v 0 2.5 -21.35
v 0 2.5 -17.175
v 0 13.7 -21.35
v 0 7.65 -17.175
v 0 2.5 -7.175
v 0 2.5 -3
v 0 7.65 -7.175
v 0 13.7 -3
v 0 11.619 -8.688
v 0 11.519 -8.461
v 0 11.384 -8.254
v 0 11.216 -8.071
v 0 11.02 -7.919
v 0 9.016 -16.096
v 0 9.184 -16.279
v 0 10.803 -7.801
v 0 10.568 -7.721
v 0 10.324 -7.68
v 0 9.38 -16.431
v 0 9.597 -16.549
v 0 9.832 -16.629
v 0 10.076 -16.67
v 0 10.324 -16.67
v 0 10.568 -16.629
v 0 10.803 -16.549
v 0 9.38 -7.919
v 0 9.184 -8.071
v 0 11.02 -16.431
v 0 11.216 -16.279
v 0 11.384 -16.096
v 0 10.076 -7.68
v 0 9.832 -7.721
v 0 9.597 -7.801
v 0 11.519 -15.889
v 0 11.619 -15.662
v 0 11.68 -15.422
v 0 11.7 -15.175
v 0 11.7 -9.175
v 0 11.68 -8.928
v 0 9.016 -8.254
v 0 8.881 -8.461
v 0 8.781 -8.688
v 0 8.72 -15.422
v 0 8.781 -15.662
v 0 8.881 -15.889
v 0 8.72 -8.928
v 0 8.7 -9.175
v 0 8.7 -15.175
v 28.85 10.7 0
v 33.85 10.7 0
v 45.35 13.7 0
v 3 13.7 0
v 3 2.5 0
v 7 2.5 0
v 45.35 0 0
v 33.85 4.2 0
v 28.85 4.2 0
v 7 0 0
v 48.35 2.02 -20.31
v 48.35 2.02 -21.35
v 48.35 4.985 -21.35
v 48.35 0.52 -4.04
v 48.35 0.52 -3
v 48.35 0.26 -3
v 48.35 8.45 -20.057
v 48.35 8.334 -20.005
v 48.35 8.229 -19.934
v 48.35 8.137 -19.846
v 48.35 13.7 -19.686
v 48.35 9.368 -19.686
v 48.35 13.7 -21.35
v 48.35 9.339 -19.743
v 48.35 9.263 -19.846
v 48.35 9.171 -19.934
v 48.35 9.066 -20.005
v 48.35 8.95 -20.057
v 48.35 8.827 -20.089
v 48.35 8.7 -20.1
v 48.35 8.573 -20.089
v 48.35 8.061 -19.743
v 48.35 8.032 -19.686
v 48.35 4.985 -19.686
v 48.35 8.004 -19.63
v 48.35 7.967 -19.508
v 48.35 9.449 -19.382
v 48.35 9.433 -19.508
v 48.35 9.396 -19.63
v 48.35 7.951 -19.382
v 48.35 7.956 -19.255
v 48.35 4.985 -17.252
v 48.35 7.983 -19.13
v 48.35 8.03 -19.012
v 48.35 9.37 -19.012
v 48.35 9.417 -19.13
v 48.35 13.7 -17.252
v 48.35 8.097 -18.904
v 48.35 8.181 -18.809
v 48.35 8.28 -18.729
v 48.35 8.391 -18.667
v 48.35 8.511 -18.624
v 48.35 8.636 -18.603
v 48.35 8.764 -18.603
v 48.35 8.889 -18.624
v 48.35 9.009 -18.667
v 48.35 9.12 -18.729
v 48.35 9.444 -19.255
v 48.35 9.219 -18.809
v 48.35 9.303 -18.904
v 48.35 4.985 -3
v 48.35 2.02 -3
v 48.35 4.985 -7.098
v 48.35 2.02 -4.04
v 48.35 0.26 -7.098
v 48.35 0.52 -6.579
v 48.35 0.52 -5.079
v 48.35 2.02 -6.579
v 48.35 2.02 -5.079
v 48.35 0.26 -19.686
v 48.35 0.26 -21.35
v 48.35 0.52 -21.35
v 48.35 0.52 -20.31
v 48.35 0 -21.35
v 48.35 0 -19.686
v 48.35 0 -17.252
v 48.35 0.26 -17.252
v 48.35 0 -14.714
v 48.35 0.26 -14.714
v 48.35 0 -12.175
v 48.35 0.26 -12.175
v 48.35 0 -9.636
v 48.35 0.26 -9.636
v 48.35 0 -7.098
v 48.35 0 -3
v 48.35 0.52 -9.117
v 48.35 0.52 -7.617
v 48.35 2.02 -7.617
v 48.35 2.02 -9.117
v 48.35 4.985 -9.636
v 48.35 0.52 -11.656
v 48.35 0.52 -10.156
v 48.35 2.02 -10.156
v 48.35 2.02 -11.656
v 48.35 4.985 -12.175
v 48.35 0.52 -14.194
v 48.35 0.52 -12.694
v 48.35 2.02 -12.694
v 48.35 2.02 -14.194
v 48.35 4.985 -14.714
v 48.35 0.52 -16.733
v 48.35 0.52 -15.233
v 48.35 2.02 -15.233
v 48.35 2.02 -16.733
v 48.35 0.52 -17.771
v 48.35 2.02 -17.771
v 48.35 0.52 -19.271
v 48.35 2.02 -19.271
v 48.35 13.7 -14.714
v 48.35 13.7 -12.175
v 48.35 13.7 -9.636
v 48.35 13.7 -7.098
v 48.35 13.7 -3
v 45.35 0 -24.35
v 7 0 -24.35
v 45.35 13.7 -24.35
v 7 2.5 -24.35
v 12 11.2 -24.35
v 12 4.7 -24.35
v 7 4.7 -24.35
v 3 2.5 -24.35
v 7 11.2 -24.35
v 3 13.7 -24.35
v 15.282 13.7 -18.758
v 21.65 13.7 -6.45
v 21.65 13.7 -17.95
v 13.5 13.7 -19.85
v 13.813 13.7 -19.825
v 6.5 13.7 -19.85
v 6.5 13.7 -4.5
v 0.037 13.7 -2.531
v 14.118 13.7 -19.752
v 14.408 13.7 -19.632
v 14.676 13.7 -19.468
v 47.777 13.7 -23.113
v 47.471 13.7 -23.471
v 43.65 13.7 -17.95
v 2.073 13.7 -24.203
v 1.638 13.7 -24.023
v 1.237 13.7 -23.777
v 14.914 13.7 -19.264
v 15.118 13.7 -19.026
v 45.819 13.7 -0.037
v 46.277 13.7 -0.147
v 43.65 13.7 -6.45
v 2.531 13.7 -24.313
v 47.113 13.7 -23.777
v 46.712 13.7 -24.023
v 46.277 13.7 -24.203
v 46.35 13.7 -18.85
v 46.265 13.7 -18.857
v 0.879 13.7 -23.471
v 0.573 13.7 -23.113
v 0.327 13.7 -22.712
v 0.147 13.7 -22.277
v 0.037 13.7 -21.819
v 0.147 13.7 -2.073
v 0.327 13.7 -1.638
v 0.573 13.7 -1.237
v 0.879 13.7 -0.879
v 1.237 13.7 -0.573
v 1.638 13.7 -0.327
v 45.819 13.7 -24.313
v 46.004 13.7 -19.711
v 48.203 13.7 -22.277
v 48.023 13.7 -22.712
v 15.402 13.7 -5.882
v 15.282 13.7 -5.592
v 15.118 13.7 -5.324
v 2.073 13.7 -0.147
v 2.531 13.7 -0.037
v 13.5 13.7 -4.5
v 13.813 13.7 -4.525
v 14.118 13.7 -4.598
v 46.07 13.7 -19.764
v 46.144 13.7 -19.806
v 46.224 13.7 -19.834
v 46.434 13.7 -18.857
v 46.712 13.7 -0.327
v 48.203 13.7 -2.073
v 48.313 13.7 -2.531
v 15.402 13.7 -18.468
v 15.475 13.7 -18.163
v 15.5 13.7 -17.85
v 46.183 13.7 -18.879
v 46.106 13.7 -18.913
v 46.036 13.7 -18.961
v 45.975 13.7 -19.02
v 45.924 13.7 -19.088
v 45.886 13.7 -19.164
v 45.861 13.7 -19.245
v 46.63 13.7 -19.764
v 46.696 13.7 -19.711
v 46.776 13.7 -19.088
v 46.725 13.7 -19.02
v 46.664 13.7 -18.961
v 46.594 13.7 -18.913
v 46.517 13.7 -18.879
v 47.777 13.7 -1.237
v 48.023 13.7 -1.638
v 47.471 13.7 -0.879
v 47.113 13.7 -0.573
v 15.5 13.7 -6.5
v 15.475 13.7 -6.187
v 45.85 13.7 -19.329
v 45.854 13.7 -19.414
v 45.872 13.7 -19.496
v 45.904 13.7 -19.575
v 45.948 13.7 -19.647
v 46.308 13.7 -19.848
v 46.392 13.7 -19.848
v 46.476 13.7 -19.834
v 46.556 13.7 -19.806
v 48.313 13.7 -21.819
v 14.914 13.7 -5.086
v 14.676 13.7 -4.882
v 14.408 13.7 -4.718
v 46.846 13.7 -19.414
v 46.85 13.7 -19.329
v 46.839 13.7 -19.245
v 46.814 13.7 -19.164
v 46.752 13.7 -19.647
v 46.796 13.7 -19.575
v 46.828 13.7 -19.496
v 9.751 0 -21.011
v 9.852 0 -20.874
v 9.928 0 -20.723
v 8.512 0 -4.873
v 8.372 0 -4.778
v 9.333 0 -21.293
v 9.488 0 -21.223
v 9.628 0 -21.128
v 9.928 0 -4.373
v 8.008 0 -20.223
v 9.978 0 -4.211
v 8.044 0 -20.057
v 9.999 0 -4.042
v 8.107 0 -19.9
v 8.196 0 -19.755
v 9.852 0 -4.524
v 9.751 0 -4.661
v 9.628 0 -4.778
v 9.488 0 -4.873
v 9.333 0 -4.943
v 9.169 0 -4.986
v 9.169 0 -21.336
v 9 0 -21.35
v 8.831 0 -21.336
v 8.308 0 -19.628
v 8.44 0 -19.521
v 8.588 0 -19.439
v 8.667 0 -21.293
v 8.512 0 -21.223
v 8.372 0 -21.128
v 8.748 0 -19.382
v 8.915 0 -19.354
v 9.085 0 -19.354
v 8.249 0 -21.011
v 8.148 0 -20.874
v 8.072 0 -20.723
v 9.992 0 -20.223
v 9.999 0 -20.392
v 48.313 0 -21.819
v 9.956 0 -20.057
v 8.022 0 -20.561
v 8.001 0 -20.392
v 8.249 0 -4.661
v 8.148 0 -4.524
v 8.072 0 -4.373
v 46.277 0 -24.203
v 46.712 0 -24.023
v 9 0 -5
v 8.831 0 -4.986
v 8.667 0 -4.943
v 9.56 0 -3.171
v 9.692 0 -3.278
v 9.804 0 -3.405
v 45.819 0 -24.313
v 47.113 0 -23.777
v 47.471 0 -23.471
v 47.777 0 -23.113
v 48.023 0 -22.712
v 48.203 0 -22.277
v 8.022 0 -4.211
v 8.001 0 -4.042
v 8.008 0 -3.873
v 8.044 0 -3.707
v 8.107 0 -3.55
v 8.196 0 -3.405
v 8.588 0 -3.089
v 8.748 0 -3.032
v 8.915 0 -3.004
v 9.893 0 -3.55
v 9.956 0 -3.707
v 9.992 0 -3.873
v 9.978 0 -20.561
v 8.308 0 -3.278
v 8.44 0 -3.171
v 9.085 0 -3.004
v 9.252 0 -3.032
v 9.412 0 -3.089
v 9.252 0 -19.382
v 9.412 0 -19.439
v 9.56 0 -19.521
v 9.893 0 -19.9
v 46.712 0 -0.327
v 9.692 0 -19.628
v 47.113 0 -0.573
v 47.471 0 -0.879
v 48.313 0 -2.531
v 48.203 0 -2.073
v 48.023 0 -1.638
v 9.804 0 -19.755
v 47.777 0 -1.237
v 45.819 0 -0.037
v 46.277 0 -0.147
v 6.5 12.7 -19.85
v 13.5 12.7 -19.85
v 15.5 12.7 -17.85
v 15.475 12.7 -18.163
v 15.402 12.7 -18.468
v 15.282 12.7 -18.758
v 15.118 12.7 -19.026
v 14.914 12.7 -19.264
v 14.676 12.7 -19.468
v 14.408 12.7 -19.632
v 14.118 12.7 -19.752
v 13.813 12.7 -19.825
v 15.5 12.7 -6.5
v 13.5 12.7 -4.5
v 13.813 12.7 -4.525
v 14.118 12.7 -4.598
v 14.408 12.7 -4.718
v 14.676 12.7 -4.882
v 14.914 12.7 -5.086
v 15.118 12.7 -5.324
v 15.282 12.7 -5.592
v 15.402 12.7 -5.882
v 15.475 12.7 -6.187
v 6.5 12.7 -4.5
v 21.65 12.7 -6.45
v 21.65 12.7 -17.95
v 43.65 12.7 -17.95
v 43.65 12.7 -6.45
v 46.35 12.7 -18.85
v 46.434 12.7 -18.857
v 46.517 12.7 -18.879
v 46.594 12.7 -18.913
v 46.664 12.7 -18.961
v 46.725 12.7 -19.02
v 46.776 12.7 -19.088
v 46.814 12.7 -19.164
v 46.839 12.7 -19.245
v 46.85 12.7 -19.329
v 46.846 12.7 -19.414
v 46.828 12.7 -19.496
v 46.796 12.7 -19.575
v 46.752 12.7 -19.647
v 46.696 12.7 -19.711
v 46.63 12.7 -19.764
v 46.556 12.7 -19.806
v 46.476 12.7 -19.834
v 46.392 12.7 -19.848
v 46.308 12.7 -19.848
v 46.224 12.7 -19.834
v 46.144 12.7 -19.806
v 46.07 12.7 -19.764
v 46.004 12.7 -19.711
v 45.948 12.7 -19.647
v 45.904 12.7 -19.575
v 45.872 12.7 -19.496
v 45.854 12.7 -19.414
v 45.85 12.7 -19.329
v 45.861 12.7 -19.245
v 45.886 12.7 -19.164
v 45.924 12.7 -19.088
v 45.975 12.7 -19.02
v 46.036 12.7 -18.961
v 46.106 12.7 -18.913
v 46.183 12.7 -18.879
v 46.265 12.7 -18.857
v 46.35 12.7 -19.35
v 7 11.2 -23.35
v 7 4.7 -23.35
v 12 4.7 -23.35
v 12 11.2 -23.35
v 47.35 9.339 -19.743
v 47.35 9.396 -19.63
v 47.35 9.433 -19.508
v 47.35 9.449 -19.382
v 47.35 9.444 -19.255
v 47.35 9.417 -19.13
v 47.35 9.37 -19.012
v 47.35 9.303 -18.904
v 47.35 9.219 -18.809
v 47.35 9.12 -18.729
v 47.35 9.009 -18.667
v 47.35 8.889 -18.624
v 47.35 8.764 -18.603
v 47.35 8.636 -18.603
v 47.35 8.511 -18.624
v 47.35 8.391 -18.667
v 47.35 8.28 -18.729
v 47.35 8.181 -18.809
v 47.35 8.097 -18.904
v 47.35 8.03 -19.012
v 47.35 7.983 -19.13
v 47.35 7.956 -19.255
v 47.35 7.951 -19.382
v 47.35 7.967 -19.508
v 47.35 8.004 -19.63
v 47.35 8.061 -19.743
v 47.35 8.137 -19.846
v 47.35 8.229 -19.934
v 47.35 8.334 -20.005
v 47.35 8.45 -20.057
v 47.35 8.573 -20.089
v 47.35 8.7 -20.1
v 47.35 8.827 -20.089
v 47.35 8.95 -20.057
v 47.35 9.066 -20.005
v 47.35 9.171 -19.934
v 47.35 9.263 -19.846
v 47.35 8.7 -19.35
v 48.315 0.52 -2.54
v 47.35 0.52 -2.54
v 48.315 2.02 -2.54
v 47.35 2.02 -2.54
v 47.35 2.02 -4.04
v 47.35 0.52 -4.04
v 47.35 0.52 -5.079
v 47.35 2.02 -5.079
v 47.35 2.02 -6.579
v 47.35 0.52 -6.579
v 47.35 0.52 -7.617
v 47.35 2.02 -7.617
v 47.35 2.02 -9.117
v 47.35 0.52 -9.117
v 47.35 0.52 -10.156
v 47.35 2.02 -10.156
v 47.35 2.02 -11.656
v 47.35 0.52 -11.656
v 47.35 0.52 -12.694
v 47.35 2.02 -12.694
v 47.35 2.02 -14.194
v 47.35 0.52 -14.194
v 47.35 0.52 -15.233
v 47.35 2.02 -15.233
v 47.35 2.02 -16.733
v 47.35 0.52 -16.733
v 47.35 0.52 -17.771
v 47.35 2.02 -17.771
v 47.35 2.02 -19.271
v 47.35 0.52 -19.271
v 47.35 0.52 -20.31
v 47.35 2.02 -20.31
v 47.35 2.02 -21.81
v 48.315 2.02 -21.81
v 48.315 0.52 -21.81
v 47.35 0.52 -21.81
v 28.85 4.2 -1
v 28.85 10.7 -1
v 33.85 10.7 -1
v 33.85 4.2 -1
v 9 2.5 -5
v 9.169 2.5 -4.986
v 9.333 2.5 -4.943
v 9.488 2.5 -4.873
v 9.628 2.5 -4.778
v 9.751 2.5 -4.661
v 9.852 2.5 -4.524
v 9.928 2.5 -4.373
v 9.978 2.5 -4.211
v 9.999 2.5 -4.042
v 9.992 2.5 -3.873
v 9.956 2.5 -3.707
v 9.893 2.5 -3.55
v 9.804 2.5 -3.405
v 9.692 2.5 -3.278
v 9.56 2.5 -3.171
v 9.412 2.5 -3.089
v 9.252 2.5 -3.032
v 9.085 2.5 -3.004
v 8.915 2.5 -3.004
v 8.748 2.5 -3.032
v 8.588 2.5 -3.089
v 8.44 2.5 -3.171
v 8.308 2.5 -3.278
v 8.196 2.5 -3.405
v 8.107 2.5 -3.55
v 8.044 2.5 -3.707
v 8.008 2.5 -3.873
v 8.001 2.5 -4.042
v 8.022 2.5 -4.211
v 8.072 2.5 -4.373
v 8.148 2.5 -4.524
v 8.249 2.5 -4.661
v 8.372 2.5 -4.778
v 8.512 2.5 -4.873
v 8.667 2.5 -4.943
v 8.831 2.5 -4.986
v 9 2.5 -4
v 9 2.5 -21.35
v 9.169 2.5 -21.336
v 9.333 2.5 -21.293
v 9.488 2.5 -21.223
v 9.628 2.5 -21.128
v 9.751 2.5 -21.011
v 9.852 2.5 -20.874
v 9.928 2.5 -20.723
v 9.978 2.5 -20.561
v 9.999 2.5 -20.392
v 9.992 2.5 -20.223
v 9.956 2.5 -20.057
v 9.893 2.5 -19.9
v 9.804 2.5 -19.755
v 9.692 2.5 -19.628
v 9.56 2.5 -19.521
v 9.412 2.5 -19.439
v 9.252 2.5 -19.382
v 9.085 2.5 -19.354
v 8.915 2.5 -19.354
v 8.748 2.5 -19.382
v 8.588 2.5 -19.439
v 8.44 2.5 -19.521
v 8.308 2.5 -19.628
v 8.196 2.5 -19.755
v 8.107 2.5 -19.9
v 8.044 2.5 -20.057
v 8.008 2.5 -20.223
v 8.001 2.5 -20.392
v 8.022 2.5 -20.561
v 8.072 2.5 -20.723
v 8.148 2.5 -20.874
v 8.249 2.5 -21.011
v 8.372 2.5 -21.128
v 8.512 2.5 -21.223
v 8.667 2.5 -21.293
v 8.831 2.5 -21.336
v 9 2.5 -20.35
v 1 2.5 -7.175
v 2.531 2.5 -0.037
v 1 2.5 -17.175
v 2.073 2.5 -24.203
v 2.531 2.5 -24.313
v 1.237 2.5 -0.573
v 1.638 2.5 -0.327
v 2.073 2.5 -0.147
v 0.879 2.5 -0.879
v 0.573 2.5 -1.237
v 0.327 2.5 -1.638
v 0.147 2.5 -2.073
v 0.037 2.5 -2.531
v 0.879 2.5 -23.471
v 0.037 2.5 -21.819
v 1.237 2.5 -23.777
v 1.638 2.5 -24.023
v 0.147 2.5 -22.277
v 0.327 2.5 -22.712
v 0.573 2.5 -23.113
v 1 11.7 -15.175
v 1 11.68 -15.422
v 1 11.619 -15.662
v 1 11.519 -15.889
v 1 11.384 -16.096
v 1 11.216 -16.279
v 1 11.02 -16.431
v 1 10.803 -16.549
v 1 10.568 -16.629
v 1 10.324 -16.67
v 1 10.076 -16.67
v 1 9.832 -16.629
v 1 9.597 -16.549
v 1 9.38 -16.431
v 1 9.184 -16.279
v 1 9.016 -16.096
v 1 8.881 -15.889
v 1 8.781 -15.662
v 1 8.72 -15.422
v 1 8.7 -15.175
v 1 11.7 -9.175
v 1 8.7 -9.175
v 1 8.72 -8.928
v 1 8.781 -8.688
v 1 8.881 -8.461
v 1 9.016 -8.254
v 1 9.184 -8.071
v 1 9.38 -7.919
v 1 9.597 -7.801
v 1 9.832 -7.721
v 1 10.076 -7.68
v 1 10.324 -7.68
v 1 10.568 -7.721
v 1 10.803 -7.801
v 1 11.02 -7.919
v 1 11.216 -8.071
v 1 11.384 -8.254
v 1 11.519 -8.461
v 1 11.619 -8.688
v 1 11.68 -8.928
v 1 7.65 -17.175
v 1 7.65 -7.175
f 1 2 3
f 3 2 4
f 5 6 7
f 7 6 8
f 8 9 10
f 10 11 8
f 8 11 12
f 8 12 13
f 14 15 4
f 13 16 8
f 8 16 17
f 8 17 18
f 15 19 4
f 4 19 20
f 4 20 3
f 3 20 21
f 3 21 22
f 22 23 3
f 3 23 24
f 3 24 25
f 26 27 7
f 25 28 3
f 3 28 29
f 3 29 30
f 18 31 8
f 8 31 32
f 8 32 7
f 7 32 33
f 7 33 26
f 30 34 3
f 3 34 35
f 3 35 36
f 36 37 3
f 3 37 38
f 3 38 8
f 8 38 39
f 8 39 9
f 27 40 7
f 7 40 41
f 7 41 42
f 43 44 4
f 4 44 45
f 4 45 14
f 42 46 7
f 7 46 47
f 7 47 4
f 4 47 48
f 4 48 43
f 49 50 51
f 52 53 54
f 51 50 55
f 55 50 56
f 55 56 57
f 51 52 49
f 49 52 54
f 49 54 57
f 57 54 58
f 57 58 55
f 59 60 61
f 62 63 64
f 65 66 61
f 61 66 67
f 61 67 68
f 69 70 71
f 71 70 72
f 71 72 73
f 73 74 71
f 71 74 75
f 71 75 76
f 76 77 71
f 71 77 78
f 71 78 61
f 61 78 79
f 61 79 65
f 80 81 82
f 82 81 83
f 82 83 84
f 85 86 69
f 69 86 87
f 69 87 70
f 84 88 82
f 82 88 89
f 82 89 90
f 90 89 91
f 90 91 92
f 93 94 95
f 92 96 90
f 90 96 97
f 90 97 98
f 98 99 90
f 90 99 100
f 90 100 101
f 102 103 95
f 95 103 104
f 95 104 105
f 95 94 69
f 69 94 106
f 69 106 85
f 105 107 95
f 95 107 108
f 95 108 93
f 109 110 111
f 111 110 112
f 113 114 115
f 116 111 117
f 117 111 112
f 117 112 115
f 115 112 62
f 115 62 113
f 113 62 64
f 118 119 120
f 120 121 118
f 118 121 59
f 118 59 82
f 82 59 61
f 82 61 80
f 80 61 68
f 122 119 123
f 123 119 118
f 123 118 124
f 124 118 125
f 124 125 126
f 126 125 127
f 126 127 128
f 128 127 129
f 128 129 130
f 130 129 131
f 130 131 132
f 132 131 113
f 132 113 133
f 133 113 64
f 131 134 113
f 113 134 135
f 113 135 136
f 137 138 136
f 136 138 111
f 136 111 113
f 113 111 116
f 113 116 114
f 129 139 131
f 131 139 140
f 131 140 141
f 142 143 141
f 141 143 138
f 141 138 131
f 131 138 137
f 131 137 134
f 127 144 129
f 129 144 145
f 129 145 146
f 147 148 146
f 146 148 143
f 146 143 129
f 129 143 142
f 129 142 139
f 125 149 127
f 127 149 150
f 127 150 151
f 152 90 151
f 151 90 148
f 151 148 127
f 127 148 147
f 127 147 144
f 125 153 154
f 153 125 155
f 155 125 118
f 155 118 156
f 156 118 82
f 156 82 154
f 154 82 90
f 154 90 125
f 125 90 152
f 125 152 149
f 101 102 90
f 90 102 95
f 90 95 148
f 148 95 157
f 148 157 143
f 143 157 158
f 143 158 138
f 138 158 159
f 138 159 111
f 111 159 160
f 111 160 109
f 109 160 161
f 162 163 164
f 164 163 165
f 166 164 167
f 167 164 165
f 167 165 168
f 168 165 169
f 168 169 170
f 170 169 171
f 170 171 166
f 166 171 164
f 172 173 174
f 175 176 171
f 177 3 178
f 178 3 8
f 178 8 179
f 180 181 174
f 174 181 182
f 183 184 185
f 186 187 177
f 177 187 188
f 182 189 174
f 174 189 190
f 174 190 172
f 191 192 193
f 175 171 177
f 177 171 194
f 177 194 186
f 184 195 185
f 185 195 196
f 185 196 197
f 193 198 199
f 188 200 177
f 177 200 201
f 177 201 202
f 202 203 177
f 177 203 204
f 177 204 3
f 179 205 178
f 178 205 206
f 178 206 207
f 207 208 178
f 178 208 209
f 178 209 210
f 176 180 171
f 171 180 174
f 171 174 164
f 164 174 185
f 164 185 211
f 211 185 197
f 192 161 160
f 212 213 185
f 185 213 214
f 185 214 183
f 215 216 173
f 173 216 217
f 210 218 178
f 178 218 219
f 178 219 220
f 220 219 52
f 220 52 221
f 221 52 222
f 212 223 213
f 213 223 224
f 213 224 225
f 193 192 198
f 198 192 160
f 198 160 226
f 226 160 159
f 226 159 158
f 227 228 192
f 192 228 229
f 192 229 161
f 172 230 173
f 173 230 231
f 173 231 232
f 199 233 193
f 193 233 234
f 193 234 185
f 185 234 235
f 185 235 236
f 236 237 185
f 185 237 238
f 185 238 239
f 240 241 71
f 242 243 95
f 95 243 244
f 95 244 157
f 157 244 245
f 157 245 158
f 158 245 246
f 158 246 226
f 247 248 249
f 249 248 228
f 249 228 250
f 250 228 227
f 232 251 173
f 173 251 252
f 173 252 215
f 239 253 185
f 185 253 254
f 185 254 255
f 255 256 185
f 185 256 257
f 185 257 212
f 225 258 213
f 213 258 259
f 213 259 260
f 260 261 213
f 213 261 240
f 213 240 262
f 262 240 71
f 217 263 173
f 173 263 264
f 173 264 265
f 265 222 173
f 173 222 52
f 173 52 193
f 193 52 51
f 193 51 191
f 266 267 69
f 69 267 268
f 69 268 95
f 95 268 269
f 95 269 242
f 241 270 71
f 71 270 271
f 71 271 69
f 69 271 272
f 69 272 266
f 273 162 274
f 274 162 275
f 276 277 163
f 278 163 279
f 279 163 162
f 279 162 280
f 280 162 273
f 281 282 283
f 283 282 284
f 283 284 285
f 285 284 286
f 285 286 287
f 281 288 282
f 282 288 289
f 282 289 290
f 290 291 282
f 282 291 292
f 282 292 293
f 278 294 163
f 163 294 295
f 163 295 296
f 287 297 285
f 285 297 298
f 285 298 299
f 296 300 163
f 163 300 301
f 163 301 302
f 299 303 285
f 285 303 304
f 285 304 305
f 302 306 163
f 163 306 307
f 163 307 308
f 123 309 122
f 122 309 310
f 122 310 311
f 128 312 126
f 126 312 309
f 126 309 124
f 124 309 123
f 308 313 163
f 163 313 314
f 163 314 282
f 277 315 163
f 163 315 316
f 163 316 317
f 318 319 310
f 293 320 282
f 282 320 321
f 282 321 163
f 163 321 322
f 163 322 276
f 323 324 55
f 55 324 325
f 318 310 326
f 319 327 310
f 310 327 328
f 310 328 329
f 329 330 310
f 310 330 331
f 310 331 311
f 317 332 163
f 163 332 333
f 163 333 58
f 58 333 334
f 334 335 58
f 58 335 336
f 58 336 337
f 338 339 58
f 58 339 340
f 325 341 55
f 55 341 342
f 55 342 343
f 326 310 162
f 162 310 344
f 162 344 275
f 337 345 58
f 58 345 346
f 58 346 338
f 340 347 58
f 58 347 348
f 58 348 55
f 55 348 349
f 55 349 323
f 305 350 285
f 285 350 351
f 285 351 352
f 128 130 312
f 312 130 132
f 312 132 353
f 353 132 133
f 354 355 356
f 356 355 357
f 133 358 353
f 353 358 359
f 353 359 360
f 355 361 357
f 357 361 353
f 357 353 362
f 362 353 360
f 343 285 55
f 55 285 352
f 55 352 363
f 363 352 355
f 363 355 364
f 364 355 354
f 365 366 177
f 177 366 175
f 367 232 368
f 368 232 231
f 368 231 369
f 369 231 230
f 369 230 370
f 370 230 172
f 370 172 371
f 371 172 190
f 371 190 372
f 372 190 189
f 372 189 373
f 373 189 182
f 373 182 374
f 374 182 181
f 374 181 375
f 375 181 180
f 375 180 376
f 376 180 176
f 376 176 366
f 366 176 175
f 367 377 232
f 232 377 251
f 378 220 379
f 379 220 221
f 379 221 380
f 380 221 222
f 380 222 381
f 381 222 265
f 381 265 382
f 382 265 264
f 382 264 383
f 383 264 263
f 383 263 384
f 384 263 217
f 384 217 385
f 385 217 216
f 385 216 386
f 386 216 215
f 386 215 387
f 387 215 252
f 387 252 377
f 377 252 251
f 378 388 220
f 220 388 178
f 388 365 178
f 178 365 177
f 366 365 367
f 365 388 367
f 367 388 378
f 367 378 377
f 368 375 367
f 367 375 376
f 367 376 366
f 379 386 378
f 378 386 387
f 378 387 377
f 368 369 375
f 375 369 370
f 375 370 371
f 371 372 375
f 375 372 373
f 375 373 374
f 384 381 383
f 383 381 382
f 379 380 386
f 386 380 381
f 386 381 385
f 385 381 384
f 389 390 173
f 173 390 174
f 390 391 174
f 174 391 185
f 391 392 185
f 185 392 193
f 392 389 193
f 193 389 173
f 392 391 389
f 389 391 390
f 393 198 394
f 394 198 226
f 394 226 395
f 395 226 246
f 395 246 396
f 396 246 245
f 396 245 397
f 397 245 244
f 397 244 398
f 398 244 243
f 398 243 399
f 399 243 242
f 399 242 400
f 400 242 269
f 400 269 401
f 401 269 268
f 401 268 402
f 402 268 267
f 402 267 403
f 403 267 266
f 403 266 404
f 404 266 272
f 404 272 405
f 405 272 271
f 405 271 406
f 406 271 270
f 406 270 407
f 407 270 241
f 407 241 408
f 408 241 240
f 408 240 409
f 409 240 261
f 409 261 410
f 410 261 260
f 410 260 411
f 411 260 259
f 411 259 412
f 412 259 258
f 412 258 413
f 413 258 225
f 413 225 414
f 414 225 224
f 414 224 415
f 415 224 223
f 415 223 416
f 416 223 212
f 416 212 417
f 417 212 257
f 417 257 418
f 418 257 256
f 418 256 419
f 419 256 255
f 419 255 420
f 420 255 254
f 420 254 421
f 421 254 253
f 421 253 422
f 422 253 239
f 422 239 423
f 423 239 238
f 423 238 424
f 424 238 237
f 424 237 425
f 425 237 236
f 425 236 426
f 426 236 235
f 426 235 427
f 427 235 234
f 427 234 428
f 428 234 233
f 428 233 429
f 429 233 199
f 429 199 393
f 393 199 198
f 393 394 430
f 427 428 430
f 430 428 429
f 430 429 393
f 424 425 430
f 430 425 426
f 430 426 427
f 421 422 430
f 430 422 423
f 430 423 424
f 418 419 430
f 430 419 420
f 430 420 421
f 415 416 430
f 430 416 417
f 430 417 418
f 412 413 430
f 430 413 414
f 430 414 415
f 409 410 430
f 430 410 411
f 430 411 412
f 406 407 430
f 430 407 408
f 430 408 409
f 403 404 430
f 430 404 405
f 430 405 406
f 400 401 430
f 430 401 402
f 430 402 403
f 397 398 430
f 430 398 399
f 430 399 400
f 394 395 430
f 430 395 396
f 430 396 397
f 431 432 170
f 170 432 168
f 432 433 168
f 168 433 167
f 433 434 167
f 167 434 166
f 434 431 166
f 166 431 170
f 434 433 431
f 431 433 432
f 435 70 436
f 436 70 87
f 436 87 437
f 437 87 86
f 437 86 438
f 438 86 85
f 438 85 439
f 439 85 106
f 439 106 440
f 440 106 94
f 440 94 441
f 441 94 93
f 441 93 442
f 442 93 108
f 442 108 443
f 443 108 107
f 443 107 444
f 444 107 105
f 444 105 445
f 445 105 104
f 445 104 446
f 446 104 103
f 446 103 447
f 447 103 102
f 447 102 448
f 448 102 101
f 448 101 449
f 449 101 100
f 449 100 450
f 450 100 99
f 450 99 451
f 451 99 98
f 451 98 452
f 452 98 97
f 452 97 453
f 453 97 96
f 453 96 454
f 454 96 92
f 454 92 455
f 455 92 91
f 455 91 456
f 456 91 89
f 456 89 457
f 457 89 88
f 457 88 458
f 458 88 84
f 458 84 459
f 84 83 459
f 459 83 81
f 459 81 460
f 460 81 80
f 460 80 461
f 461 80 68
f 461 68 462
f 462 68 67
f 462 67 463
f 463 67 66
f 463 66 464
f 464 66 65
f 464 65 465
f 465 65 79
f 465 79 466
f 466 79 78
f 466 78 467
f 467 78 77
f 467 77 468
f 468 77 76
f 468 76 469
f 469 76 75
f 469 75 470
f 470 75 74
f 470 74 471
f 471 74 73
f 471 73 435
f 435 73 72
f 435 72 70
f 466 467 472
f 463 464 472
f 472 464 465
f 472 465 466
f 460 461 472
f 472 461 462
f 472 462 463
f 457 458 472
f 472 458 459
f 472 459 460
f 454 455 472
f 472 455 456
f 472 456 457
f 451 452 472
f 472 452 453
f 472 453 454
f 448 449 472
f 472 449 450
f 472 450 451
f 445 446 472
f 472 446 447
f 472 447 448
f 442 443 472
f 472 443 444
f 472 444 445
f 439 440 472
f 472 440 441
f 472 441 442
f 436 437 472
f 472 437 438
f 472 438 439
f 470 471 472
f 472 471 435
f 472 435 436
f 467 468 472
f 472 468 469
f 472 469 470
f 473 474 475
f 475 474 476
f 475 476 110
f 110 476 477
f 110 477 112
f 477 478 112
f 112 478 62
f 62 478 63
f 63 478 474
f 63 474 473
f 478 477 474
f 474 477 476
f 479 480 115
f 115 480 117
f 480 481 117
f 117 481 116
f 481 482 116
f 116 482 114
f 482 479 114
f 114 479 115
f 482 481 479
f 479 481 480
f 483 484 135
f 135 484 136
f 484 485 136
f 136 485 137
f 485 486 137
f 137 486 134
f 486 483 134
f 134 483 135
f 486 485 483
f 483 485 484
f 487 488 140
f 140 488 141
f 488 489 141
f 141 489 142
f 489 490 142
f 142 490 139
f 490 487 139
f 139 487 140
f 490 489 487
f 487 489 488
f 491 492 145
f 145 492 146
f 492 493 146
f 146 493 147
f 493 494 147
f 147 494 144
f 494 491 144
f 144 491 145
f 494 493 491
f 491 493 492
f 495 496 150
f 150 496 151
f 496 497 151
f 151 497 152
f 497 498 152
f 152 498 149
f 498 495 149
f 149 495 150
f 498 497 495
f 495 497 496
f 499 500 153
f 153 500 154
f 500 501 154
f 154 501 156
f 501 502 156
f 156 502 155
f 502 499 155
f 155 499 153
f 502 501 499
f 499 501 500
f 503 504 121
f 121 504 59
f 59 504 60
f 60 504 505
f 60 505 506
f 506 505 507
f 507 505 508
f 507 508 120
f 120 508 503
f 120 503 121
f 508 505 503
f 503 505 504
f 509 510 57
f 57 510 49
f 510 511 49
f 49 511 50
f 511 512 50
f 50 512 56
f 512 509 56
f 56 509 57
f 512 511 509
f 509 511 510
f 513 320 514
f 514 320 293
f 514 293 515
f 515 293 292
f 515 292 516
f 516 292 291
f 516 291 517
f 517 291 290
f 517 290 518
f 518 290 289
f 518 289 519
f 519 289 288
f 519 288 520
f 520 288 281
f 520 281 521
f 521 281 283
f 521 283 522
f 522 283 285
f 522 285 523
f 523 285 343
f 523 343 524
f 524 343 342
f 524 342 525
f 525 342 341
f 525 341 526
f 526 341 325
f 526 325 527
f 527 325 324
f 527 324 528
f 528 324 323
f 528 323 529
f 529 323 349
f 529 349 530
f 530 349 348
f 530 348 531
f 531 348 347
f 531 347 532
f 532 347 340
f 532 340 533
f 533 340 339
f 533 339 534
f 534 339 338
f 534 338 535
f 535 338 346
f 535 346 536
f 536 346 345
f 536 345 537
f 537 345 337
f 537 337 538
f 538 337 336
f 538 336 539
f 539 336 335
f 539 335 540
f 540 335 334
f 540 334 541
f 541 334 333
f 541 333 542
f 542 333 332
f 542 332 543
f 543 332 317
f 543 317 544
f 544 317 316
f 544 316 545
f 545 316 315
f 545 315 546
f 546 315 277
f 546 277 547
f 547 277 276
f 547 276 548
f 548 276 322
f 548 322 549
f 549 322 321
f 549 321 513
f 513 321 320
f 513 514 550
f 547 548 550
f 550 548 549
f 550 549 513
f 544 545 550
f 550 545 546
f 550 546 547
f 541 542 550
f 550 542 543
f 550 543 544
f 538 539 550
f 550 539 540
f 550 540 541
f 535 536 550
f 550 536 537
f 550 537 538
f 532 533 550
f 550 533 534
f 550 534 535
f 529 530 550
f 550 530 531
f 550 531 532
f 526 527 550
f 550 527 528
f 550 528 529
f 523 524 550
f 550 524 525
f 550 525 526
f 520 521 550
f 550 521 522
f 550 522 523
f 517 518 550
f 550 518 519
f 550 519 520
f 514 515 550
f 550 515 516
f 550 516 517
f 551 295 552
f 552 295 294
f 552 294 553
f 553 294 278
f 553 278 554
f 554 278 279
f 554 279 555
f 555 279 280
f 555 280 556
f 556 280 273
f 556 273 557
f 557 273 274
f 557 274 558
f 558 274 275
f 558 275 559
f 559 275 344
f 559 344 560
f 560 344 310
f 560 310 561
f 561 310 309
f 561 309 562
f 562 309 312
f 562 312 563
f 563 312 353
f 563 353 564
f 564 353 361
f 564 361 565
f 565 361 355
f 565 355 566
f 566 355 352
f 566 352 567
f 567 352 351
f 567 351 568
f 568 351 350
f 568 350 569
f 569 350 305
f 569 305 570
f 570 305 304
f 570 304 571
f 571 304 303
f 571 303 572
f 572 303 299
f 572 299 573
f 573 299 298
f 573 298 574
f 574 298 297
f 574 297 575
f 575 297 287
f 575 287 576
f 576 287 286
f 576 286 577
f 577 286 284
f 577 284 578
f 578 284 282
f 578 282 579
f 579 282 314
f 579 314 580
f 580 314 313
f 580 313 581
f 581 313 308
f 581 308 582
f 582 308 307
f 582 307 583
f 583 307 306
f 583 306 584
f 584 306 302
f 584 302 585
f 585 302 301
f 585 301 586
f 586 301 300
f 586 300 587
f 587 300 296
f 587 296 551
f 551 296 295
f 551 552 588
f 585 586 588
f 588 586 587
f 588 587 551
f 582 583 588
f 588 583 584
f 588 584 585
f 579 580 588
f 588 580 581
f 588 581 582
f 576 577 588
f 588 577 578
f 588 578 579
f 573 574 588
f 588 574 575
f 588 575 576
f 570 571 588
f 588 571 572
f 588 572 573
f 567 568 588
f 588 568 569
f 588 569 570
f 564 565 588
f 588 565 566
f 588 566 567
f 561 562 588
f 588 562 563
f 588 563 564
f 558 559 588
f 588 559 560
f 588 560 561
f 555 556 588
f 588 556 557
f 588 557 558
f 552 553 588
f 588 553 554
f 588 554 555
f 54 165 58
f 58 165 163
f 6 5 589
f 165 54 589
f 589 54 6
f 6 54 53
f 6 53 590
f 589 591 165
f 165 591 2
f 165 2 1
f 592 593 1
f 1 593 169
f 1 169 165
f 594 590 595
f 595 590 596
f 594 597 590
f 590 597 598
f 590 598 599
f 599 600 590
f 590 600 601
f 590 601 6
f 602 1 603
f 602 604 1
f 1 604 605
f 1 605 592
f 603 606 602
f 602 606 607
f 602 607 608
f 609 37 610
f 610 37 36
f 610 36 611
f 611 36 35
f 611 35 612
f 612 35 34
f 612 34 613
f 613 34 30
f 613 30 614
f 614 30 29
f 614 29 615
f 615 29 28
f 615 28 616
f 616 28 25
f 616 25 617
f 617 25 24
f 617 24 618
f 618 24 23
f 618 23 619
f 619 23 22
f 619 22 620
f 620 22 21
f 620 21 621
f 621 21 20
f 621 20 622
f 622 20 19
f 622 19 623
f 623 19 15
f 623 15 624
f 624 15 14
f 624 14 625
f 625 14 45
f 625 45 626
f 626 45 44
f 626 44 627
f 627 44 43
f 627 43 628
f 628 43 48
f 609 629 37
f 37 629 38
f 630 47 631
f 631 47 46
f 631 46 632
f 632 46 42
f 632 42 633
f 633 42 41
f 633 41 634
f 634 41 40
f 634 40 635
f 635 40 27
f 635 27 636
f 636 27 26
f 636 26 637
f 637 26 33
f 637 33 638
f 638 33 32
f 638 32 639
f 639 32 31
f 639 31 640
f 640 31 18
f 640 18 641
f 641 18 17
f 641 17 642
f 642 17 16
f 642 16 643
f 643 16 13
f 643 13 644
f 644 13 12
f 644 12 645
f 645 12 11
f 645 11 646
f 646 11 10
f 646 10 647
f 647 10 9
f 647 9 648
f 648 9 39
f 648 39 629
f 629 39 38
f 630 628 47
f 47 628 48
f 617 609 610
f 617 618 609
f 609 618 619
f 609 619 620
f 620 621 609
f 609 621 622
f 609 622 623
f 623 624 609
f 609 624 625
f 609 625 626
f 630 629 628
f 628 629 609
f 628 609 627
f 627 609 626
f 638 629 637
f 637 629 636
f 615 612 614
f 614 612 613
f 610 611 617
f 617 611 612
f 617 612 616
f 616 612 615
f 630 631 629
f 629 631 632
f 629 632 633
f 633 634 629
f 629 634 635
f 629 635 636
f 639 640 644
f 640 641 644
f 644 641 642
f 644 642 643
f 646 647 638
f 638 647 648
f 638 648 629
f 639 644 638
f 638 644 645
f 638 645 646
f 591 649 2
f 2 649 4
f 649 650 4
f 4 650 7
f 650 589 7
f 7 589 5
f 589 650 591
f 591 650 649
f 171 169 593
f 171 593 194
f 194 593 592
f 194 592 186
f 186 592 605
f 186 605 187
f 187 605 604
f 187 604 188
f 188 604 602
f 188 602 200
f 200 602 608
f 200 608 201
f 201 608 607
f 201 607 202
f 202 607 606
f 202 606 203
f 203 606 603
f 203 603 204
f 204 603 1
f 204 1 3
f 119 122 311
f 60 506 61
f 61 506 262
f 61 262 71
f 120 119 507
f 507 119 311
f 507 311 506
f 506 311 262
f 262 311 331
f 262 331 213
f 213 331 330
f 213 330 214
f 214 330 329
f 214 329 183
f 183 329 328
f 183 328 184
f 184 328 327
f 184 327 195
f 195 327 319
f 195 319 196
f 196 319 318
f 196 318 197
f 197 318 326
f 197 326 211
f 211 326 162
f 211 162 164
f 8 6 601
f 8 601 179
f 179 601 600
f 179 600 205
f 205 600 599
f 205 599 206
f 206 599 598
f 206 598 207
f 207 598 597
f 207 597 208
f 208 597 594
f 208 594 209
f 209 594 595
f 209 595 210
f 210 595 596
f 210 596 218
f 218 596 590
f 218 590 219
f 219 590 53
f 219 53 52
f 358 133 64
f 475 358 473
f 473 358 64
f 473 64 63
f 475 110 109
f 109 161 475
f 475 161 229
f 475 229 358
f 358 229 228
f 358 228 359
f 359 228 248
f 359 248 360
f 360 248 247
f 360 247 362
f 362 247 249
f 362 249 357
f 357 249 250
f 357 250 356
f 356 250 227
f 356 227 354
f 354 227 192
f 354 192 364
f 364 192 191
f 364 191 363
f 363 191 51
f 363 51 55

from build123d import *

# Parameters (mm, degrees)
SKETCH1_W           = 48.35
SKETCH1_H           = 24.35
BOSS_EXTRUDE1_DEPTH = 13.7
SKETCH2_R           = 0.5
SKETCH2_W           = 22
SKETCH2_H           = 11.5
CUT_EXTRUDE1_DEPTH  = 1
SKETCH3_W           = 5
SKETCH3_H           = 6.5
CUT_EXTRUDE2_DEPTH  = 1
SKETCH4_R           = 0.75
SKETCH4_W           = 1.5
SKETCH4_H           = 1.5
CUT_EXTRUDE3_DEPTH  = 1
SKETCH5_W           = 5
SKETCH5_H           = 6.5
CUT_EXTRUDE4_DEPTH  = 1
SKETCH6_R           = 1
SKETCH6_W           = 7
SKETCH6_H           = 24.35
CUT_EXTRUDE5_DEPTH  = 2.5
SKETCH7_W           = 10
SKETCH7_H           = 5.15
CUT_EXTRUDE6_DEPTH  = 1
FILLET1_R           = 3


with BuildPart() as part:
    # Sketch1 → Boss-Extrude1 (new body)
    with BuildSketch(Plane(origin=(0, 0, 0), x_dir=(1, 0, 0), z_dir=(0, 1, 0))):
        with Locations((24.175, 12.175)):
            Rectangle(SKETCH1_W, SKETCH1_H)
    extrude(amount=BOSS_EXTRUDE1_DEPTH)

    # Sketch2 → Cut-Extrude1 (cut)
    with BuildSketch(Plane(origin=(0, 13.7, 0), x_dir=(1, 0, 0), z_dir=(0, 1, 0))):
        with Locations(Location((46.35, 19.35, 0), (0, 0, 270))):
            Circle(SKETCH2_R)
        with BuildLine():
            Line((6.5, 19.85), (6.5, 4.5))
            Line((6.5, 4.5), (13.5, 4.5))
            ThreePointArc((13.5, 4.5), (14.914213562, 5.085786438), (15.5, 6.5))
            Line((15.5, 6.5), (15.5, 17.85))
            ThreePointArc((15.5, 17.85), (14.914213562, 19.264213562), (13.5, 19.85))
            Line((13.5, 19.85), (6.5, 19.85))
        make_face()
        with Locations((32.65, 12.2)):
            Rectangle(SKETCH2_W, SKETCH2_H)
    extrude(amount=-CUT_EXTRUDE1_DEPTH, mode=Mode.SUBTRACT)

    # Sketch3 → Cut-Extrude2 (cut)
    with BuildSketch(Plane(origin=(0, 0, -24.35), x_dir=(-1, 0, 0), z_dir=(0, 0, -1))):
        with Locations((-9.5, 7.95)):
            Rectangle(SKETCH3_W, SKETCH3_H)
    extrude(amount=-CUT_EXTRUDE2_DEPTH, mode=Mode.SUBTRACT)

    # Sketch4 → Cut-Extrude3 (cut)
    with BuildSketch(Plane(origin=(48.35, 0, 0), x_dir=(0, 0, -1), z_dir=(1, 0, 0))):
        with Locations((19.35, 8.7)):
            Circle(SKETCH4_R)
        with Locations((5.828571429, 1.27)):
            Rectangle(SKETCH4_W, SKETCH4_H)
        with Locations((3.29, 1.27)):
            Rectangle(SKETCH4_W, SKETCH4_H)
        with Locations((8.367142857, 1.27)):
            Rectangle(SKETCH4_W, SKETCH4_H)
        with Locations((10.905714286, 1.27)):
            Rectangle(SKETCH4_W, SKETCH4_H)
        with Locations((13.444285714, 1.27)):
            Rectangle(SKETCH4_W, SKETCH4_H)
        with Locations((15.982857143, 1.27)):
            Rectangle(SKETCH4_W, SKETCH4_H)
        with Locations((18.521428571, 1.27)):
            Rectangle(SKETCH4_W, SKETCH4_H)
        with Locations((21.06, 1.27)):
            Rectangle(SKETCH4_W, SKETCH4_H)
    extrude(amount=-CUT_EXTRUDE3_DEPTH, mode=Mode.SUBTRACT)

    # Sketch5 → Cut-Extrude4 (cut)
    with BuildSketch(Plane.XY):
        with Locations((31.35, 7.45)):
            Rectangle(SKETCH5_W, SKETCH5_H)
    extrude(amount=-CUT_EXTRUDE4_DEPTH, mode=Mode.SUBTRACT)

    # Sketch6 → Cut-Extrude5 (cut)
    with BuildSketch(Plane.XZ):
        with Locations(Location((9, -4, 0), (0, 0, 270))):
            Circle(SKETCH6_R)
        with Locations(Location((9, -20.35, 0), (0, 0, 270))):
            Circle(SKETCH6_R)
        with Locations((3.5, -12.175)):
            Rectangle(SKETCH6_W, SKETCH6_H)
    extrude(amount=-CUT_EXTRUDE5_DEPTH, mode=Mode.SUBTRACT)

    # Sketch7 → Cut-Extrude6 (cut)
    with BuildSketch(Plane.ZY):
        with BuildLine():
            Line((-15.175, 11.7), (-9.175, 11.7))
            ThreePointArc((-9.175, 11.7), (-7.675, 10.2), (-9.175, 8.7))
            Line((-9.175, 8.7), (-15.175, 8.7))
            ThreePointArc((-15.175, 8.7), (-16.675, 10.2), (-15.175, 11.7))
        make_face()
        with Locations((-12.175, 5.075)):
            Rectangle(SKETCH7_W, SKETCH7_H)
    extrude(amount=-CUT_EXTRUDE6_DEPTH, mode=Mode.SUBTRACT)

    # Fillet1
    # the kernel refuses this fillet: 3 mm, written as the material it takes off along each edge
    with BuildSketch(Plane(origin=(0, -5, -24.35), x_dir=(0, 0, 1), z_dir=(0, 1, 0)), Plane(origin=(0, -5, 0), x_dir=(1, 0, 0), z_dir=(0, 1, 0))) as fillet1_piece_1:
        with BuildLine():
            CenterArc((FILLET1_R, FILLET1_R), FILLET1_R, 180, 90)
            Line((0, FILLET1_R), (0, 0))
            Line((0, 0), (FILLET1_R, 0))
        make_face()
    extrude(amount=26.2, mode=Mode.SUBTRACT)
    with BuildSketch(Plane(origin=(48.35, -7.5, -24.35), x_dir=(0, 0, 1), z_dir=(0, 1, 0)), Plane(origin=(48.35, -7.5, 0), x_dir=(-1, 0, 0), z_dir=(0, 1, 0))) as fillet1_piece_2:
        with BuildLine():
            CenterArc((FILLET1_R, -FILLET1_R), FILLET1_R, 90, 90)
            Line((0, -FILLET1_R), (0, 0))
            Line((0, 0), (FILLET1_R, 0))
        make_face()
    extrude(amount=28.7, mode=Mode.SUBTRACT)


solid = part.part
